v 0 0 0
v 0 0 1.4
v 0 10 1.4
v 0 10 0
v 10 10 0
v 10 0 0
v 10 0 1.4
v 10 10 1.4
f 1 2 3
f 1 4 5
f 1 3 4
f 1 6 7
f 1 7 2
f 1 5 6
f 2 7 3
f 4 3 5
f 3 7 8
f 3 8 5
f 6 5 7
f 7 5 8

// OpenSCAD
/* Warning, this is a very basic generator with a lot of approximation 
input data : [LQFP, CDA, 10x10x1.4mm, 52, , A, C04-01073A]
generated by com.zoubworld.electronics.cad.model3d.Basic
Date : Sun Feb 15 10:50:49 CET 2026
*/

//body
color("black")
translate([0,0,0])
cube([10.0,10.0,1.4], center=false);
